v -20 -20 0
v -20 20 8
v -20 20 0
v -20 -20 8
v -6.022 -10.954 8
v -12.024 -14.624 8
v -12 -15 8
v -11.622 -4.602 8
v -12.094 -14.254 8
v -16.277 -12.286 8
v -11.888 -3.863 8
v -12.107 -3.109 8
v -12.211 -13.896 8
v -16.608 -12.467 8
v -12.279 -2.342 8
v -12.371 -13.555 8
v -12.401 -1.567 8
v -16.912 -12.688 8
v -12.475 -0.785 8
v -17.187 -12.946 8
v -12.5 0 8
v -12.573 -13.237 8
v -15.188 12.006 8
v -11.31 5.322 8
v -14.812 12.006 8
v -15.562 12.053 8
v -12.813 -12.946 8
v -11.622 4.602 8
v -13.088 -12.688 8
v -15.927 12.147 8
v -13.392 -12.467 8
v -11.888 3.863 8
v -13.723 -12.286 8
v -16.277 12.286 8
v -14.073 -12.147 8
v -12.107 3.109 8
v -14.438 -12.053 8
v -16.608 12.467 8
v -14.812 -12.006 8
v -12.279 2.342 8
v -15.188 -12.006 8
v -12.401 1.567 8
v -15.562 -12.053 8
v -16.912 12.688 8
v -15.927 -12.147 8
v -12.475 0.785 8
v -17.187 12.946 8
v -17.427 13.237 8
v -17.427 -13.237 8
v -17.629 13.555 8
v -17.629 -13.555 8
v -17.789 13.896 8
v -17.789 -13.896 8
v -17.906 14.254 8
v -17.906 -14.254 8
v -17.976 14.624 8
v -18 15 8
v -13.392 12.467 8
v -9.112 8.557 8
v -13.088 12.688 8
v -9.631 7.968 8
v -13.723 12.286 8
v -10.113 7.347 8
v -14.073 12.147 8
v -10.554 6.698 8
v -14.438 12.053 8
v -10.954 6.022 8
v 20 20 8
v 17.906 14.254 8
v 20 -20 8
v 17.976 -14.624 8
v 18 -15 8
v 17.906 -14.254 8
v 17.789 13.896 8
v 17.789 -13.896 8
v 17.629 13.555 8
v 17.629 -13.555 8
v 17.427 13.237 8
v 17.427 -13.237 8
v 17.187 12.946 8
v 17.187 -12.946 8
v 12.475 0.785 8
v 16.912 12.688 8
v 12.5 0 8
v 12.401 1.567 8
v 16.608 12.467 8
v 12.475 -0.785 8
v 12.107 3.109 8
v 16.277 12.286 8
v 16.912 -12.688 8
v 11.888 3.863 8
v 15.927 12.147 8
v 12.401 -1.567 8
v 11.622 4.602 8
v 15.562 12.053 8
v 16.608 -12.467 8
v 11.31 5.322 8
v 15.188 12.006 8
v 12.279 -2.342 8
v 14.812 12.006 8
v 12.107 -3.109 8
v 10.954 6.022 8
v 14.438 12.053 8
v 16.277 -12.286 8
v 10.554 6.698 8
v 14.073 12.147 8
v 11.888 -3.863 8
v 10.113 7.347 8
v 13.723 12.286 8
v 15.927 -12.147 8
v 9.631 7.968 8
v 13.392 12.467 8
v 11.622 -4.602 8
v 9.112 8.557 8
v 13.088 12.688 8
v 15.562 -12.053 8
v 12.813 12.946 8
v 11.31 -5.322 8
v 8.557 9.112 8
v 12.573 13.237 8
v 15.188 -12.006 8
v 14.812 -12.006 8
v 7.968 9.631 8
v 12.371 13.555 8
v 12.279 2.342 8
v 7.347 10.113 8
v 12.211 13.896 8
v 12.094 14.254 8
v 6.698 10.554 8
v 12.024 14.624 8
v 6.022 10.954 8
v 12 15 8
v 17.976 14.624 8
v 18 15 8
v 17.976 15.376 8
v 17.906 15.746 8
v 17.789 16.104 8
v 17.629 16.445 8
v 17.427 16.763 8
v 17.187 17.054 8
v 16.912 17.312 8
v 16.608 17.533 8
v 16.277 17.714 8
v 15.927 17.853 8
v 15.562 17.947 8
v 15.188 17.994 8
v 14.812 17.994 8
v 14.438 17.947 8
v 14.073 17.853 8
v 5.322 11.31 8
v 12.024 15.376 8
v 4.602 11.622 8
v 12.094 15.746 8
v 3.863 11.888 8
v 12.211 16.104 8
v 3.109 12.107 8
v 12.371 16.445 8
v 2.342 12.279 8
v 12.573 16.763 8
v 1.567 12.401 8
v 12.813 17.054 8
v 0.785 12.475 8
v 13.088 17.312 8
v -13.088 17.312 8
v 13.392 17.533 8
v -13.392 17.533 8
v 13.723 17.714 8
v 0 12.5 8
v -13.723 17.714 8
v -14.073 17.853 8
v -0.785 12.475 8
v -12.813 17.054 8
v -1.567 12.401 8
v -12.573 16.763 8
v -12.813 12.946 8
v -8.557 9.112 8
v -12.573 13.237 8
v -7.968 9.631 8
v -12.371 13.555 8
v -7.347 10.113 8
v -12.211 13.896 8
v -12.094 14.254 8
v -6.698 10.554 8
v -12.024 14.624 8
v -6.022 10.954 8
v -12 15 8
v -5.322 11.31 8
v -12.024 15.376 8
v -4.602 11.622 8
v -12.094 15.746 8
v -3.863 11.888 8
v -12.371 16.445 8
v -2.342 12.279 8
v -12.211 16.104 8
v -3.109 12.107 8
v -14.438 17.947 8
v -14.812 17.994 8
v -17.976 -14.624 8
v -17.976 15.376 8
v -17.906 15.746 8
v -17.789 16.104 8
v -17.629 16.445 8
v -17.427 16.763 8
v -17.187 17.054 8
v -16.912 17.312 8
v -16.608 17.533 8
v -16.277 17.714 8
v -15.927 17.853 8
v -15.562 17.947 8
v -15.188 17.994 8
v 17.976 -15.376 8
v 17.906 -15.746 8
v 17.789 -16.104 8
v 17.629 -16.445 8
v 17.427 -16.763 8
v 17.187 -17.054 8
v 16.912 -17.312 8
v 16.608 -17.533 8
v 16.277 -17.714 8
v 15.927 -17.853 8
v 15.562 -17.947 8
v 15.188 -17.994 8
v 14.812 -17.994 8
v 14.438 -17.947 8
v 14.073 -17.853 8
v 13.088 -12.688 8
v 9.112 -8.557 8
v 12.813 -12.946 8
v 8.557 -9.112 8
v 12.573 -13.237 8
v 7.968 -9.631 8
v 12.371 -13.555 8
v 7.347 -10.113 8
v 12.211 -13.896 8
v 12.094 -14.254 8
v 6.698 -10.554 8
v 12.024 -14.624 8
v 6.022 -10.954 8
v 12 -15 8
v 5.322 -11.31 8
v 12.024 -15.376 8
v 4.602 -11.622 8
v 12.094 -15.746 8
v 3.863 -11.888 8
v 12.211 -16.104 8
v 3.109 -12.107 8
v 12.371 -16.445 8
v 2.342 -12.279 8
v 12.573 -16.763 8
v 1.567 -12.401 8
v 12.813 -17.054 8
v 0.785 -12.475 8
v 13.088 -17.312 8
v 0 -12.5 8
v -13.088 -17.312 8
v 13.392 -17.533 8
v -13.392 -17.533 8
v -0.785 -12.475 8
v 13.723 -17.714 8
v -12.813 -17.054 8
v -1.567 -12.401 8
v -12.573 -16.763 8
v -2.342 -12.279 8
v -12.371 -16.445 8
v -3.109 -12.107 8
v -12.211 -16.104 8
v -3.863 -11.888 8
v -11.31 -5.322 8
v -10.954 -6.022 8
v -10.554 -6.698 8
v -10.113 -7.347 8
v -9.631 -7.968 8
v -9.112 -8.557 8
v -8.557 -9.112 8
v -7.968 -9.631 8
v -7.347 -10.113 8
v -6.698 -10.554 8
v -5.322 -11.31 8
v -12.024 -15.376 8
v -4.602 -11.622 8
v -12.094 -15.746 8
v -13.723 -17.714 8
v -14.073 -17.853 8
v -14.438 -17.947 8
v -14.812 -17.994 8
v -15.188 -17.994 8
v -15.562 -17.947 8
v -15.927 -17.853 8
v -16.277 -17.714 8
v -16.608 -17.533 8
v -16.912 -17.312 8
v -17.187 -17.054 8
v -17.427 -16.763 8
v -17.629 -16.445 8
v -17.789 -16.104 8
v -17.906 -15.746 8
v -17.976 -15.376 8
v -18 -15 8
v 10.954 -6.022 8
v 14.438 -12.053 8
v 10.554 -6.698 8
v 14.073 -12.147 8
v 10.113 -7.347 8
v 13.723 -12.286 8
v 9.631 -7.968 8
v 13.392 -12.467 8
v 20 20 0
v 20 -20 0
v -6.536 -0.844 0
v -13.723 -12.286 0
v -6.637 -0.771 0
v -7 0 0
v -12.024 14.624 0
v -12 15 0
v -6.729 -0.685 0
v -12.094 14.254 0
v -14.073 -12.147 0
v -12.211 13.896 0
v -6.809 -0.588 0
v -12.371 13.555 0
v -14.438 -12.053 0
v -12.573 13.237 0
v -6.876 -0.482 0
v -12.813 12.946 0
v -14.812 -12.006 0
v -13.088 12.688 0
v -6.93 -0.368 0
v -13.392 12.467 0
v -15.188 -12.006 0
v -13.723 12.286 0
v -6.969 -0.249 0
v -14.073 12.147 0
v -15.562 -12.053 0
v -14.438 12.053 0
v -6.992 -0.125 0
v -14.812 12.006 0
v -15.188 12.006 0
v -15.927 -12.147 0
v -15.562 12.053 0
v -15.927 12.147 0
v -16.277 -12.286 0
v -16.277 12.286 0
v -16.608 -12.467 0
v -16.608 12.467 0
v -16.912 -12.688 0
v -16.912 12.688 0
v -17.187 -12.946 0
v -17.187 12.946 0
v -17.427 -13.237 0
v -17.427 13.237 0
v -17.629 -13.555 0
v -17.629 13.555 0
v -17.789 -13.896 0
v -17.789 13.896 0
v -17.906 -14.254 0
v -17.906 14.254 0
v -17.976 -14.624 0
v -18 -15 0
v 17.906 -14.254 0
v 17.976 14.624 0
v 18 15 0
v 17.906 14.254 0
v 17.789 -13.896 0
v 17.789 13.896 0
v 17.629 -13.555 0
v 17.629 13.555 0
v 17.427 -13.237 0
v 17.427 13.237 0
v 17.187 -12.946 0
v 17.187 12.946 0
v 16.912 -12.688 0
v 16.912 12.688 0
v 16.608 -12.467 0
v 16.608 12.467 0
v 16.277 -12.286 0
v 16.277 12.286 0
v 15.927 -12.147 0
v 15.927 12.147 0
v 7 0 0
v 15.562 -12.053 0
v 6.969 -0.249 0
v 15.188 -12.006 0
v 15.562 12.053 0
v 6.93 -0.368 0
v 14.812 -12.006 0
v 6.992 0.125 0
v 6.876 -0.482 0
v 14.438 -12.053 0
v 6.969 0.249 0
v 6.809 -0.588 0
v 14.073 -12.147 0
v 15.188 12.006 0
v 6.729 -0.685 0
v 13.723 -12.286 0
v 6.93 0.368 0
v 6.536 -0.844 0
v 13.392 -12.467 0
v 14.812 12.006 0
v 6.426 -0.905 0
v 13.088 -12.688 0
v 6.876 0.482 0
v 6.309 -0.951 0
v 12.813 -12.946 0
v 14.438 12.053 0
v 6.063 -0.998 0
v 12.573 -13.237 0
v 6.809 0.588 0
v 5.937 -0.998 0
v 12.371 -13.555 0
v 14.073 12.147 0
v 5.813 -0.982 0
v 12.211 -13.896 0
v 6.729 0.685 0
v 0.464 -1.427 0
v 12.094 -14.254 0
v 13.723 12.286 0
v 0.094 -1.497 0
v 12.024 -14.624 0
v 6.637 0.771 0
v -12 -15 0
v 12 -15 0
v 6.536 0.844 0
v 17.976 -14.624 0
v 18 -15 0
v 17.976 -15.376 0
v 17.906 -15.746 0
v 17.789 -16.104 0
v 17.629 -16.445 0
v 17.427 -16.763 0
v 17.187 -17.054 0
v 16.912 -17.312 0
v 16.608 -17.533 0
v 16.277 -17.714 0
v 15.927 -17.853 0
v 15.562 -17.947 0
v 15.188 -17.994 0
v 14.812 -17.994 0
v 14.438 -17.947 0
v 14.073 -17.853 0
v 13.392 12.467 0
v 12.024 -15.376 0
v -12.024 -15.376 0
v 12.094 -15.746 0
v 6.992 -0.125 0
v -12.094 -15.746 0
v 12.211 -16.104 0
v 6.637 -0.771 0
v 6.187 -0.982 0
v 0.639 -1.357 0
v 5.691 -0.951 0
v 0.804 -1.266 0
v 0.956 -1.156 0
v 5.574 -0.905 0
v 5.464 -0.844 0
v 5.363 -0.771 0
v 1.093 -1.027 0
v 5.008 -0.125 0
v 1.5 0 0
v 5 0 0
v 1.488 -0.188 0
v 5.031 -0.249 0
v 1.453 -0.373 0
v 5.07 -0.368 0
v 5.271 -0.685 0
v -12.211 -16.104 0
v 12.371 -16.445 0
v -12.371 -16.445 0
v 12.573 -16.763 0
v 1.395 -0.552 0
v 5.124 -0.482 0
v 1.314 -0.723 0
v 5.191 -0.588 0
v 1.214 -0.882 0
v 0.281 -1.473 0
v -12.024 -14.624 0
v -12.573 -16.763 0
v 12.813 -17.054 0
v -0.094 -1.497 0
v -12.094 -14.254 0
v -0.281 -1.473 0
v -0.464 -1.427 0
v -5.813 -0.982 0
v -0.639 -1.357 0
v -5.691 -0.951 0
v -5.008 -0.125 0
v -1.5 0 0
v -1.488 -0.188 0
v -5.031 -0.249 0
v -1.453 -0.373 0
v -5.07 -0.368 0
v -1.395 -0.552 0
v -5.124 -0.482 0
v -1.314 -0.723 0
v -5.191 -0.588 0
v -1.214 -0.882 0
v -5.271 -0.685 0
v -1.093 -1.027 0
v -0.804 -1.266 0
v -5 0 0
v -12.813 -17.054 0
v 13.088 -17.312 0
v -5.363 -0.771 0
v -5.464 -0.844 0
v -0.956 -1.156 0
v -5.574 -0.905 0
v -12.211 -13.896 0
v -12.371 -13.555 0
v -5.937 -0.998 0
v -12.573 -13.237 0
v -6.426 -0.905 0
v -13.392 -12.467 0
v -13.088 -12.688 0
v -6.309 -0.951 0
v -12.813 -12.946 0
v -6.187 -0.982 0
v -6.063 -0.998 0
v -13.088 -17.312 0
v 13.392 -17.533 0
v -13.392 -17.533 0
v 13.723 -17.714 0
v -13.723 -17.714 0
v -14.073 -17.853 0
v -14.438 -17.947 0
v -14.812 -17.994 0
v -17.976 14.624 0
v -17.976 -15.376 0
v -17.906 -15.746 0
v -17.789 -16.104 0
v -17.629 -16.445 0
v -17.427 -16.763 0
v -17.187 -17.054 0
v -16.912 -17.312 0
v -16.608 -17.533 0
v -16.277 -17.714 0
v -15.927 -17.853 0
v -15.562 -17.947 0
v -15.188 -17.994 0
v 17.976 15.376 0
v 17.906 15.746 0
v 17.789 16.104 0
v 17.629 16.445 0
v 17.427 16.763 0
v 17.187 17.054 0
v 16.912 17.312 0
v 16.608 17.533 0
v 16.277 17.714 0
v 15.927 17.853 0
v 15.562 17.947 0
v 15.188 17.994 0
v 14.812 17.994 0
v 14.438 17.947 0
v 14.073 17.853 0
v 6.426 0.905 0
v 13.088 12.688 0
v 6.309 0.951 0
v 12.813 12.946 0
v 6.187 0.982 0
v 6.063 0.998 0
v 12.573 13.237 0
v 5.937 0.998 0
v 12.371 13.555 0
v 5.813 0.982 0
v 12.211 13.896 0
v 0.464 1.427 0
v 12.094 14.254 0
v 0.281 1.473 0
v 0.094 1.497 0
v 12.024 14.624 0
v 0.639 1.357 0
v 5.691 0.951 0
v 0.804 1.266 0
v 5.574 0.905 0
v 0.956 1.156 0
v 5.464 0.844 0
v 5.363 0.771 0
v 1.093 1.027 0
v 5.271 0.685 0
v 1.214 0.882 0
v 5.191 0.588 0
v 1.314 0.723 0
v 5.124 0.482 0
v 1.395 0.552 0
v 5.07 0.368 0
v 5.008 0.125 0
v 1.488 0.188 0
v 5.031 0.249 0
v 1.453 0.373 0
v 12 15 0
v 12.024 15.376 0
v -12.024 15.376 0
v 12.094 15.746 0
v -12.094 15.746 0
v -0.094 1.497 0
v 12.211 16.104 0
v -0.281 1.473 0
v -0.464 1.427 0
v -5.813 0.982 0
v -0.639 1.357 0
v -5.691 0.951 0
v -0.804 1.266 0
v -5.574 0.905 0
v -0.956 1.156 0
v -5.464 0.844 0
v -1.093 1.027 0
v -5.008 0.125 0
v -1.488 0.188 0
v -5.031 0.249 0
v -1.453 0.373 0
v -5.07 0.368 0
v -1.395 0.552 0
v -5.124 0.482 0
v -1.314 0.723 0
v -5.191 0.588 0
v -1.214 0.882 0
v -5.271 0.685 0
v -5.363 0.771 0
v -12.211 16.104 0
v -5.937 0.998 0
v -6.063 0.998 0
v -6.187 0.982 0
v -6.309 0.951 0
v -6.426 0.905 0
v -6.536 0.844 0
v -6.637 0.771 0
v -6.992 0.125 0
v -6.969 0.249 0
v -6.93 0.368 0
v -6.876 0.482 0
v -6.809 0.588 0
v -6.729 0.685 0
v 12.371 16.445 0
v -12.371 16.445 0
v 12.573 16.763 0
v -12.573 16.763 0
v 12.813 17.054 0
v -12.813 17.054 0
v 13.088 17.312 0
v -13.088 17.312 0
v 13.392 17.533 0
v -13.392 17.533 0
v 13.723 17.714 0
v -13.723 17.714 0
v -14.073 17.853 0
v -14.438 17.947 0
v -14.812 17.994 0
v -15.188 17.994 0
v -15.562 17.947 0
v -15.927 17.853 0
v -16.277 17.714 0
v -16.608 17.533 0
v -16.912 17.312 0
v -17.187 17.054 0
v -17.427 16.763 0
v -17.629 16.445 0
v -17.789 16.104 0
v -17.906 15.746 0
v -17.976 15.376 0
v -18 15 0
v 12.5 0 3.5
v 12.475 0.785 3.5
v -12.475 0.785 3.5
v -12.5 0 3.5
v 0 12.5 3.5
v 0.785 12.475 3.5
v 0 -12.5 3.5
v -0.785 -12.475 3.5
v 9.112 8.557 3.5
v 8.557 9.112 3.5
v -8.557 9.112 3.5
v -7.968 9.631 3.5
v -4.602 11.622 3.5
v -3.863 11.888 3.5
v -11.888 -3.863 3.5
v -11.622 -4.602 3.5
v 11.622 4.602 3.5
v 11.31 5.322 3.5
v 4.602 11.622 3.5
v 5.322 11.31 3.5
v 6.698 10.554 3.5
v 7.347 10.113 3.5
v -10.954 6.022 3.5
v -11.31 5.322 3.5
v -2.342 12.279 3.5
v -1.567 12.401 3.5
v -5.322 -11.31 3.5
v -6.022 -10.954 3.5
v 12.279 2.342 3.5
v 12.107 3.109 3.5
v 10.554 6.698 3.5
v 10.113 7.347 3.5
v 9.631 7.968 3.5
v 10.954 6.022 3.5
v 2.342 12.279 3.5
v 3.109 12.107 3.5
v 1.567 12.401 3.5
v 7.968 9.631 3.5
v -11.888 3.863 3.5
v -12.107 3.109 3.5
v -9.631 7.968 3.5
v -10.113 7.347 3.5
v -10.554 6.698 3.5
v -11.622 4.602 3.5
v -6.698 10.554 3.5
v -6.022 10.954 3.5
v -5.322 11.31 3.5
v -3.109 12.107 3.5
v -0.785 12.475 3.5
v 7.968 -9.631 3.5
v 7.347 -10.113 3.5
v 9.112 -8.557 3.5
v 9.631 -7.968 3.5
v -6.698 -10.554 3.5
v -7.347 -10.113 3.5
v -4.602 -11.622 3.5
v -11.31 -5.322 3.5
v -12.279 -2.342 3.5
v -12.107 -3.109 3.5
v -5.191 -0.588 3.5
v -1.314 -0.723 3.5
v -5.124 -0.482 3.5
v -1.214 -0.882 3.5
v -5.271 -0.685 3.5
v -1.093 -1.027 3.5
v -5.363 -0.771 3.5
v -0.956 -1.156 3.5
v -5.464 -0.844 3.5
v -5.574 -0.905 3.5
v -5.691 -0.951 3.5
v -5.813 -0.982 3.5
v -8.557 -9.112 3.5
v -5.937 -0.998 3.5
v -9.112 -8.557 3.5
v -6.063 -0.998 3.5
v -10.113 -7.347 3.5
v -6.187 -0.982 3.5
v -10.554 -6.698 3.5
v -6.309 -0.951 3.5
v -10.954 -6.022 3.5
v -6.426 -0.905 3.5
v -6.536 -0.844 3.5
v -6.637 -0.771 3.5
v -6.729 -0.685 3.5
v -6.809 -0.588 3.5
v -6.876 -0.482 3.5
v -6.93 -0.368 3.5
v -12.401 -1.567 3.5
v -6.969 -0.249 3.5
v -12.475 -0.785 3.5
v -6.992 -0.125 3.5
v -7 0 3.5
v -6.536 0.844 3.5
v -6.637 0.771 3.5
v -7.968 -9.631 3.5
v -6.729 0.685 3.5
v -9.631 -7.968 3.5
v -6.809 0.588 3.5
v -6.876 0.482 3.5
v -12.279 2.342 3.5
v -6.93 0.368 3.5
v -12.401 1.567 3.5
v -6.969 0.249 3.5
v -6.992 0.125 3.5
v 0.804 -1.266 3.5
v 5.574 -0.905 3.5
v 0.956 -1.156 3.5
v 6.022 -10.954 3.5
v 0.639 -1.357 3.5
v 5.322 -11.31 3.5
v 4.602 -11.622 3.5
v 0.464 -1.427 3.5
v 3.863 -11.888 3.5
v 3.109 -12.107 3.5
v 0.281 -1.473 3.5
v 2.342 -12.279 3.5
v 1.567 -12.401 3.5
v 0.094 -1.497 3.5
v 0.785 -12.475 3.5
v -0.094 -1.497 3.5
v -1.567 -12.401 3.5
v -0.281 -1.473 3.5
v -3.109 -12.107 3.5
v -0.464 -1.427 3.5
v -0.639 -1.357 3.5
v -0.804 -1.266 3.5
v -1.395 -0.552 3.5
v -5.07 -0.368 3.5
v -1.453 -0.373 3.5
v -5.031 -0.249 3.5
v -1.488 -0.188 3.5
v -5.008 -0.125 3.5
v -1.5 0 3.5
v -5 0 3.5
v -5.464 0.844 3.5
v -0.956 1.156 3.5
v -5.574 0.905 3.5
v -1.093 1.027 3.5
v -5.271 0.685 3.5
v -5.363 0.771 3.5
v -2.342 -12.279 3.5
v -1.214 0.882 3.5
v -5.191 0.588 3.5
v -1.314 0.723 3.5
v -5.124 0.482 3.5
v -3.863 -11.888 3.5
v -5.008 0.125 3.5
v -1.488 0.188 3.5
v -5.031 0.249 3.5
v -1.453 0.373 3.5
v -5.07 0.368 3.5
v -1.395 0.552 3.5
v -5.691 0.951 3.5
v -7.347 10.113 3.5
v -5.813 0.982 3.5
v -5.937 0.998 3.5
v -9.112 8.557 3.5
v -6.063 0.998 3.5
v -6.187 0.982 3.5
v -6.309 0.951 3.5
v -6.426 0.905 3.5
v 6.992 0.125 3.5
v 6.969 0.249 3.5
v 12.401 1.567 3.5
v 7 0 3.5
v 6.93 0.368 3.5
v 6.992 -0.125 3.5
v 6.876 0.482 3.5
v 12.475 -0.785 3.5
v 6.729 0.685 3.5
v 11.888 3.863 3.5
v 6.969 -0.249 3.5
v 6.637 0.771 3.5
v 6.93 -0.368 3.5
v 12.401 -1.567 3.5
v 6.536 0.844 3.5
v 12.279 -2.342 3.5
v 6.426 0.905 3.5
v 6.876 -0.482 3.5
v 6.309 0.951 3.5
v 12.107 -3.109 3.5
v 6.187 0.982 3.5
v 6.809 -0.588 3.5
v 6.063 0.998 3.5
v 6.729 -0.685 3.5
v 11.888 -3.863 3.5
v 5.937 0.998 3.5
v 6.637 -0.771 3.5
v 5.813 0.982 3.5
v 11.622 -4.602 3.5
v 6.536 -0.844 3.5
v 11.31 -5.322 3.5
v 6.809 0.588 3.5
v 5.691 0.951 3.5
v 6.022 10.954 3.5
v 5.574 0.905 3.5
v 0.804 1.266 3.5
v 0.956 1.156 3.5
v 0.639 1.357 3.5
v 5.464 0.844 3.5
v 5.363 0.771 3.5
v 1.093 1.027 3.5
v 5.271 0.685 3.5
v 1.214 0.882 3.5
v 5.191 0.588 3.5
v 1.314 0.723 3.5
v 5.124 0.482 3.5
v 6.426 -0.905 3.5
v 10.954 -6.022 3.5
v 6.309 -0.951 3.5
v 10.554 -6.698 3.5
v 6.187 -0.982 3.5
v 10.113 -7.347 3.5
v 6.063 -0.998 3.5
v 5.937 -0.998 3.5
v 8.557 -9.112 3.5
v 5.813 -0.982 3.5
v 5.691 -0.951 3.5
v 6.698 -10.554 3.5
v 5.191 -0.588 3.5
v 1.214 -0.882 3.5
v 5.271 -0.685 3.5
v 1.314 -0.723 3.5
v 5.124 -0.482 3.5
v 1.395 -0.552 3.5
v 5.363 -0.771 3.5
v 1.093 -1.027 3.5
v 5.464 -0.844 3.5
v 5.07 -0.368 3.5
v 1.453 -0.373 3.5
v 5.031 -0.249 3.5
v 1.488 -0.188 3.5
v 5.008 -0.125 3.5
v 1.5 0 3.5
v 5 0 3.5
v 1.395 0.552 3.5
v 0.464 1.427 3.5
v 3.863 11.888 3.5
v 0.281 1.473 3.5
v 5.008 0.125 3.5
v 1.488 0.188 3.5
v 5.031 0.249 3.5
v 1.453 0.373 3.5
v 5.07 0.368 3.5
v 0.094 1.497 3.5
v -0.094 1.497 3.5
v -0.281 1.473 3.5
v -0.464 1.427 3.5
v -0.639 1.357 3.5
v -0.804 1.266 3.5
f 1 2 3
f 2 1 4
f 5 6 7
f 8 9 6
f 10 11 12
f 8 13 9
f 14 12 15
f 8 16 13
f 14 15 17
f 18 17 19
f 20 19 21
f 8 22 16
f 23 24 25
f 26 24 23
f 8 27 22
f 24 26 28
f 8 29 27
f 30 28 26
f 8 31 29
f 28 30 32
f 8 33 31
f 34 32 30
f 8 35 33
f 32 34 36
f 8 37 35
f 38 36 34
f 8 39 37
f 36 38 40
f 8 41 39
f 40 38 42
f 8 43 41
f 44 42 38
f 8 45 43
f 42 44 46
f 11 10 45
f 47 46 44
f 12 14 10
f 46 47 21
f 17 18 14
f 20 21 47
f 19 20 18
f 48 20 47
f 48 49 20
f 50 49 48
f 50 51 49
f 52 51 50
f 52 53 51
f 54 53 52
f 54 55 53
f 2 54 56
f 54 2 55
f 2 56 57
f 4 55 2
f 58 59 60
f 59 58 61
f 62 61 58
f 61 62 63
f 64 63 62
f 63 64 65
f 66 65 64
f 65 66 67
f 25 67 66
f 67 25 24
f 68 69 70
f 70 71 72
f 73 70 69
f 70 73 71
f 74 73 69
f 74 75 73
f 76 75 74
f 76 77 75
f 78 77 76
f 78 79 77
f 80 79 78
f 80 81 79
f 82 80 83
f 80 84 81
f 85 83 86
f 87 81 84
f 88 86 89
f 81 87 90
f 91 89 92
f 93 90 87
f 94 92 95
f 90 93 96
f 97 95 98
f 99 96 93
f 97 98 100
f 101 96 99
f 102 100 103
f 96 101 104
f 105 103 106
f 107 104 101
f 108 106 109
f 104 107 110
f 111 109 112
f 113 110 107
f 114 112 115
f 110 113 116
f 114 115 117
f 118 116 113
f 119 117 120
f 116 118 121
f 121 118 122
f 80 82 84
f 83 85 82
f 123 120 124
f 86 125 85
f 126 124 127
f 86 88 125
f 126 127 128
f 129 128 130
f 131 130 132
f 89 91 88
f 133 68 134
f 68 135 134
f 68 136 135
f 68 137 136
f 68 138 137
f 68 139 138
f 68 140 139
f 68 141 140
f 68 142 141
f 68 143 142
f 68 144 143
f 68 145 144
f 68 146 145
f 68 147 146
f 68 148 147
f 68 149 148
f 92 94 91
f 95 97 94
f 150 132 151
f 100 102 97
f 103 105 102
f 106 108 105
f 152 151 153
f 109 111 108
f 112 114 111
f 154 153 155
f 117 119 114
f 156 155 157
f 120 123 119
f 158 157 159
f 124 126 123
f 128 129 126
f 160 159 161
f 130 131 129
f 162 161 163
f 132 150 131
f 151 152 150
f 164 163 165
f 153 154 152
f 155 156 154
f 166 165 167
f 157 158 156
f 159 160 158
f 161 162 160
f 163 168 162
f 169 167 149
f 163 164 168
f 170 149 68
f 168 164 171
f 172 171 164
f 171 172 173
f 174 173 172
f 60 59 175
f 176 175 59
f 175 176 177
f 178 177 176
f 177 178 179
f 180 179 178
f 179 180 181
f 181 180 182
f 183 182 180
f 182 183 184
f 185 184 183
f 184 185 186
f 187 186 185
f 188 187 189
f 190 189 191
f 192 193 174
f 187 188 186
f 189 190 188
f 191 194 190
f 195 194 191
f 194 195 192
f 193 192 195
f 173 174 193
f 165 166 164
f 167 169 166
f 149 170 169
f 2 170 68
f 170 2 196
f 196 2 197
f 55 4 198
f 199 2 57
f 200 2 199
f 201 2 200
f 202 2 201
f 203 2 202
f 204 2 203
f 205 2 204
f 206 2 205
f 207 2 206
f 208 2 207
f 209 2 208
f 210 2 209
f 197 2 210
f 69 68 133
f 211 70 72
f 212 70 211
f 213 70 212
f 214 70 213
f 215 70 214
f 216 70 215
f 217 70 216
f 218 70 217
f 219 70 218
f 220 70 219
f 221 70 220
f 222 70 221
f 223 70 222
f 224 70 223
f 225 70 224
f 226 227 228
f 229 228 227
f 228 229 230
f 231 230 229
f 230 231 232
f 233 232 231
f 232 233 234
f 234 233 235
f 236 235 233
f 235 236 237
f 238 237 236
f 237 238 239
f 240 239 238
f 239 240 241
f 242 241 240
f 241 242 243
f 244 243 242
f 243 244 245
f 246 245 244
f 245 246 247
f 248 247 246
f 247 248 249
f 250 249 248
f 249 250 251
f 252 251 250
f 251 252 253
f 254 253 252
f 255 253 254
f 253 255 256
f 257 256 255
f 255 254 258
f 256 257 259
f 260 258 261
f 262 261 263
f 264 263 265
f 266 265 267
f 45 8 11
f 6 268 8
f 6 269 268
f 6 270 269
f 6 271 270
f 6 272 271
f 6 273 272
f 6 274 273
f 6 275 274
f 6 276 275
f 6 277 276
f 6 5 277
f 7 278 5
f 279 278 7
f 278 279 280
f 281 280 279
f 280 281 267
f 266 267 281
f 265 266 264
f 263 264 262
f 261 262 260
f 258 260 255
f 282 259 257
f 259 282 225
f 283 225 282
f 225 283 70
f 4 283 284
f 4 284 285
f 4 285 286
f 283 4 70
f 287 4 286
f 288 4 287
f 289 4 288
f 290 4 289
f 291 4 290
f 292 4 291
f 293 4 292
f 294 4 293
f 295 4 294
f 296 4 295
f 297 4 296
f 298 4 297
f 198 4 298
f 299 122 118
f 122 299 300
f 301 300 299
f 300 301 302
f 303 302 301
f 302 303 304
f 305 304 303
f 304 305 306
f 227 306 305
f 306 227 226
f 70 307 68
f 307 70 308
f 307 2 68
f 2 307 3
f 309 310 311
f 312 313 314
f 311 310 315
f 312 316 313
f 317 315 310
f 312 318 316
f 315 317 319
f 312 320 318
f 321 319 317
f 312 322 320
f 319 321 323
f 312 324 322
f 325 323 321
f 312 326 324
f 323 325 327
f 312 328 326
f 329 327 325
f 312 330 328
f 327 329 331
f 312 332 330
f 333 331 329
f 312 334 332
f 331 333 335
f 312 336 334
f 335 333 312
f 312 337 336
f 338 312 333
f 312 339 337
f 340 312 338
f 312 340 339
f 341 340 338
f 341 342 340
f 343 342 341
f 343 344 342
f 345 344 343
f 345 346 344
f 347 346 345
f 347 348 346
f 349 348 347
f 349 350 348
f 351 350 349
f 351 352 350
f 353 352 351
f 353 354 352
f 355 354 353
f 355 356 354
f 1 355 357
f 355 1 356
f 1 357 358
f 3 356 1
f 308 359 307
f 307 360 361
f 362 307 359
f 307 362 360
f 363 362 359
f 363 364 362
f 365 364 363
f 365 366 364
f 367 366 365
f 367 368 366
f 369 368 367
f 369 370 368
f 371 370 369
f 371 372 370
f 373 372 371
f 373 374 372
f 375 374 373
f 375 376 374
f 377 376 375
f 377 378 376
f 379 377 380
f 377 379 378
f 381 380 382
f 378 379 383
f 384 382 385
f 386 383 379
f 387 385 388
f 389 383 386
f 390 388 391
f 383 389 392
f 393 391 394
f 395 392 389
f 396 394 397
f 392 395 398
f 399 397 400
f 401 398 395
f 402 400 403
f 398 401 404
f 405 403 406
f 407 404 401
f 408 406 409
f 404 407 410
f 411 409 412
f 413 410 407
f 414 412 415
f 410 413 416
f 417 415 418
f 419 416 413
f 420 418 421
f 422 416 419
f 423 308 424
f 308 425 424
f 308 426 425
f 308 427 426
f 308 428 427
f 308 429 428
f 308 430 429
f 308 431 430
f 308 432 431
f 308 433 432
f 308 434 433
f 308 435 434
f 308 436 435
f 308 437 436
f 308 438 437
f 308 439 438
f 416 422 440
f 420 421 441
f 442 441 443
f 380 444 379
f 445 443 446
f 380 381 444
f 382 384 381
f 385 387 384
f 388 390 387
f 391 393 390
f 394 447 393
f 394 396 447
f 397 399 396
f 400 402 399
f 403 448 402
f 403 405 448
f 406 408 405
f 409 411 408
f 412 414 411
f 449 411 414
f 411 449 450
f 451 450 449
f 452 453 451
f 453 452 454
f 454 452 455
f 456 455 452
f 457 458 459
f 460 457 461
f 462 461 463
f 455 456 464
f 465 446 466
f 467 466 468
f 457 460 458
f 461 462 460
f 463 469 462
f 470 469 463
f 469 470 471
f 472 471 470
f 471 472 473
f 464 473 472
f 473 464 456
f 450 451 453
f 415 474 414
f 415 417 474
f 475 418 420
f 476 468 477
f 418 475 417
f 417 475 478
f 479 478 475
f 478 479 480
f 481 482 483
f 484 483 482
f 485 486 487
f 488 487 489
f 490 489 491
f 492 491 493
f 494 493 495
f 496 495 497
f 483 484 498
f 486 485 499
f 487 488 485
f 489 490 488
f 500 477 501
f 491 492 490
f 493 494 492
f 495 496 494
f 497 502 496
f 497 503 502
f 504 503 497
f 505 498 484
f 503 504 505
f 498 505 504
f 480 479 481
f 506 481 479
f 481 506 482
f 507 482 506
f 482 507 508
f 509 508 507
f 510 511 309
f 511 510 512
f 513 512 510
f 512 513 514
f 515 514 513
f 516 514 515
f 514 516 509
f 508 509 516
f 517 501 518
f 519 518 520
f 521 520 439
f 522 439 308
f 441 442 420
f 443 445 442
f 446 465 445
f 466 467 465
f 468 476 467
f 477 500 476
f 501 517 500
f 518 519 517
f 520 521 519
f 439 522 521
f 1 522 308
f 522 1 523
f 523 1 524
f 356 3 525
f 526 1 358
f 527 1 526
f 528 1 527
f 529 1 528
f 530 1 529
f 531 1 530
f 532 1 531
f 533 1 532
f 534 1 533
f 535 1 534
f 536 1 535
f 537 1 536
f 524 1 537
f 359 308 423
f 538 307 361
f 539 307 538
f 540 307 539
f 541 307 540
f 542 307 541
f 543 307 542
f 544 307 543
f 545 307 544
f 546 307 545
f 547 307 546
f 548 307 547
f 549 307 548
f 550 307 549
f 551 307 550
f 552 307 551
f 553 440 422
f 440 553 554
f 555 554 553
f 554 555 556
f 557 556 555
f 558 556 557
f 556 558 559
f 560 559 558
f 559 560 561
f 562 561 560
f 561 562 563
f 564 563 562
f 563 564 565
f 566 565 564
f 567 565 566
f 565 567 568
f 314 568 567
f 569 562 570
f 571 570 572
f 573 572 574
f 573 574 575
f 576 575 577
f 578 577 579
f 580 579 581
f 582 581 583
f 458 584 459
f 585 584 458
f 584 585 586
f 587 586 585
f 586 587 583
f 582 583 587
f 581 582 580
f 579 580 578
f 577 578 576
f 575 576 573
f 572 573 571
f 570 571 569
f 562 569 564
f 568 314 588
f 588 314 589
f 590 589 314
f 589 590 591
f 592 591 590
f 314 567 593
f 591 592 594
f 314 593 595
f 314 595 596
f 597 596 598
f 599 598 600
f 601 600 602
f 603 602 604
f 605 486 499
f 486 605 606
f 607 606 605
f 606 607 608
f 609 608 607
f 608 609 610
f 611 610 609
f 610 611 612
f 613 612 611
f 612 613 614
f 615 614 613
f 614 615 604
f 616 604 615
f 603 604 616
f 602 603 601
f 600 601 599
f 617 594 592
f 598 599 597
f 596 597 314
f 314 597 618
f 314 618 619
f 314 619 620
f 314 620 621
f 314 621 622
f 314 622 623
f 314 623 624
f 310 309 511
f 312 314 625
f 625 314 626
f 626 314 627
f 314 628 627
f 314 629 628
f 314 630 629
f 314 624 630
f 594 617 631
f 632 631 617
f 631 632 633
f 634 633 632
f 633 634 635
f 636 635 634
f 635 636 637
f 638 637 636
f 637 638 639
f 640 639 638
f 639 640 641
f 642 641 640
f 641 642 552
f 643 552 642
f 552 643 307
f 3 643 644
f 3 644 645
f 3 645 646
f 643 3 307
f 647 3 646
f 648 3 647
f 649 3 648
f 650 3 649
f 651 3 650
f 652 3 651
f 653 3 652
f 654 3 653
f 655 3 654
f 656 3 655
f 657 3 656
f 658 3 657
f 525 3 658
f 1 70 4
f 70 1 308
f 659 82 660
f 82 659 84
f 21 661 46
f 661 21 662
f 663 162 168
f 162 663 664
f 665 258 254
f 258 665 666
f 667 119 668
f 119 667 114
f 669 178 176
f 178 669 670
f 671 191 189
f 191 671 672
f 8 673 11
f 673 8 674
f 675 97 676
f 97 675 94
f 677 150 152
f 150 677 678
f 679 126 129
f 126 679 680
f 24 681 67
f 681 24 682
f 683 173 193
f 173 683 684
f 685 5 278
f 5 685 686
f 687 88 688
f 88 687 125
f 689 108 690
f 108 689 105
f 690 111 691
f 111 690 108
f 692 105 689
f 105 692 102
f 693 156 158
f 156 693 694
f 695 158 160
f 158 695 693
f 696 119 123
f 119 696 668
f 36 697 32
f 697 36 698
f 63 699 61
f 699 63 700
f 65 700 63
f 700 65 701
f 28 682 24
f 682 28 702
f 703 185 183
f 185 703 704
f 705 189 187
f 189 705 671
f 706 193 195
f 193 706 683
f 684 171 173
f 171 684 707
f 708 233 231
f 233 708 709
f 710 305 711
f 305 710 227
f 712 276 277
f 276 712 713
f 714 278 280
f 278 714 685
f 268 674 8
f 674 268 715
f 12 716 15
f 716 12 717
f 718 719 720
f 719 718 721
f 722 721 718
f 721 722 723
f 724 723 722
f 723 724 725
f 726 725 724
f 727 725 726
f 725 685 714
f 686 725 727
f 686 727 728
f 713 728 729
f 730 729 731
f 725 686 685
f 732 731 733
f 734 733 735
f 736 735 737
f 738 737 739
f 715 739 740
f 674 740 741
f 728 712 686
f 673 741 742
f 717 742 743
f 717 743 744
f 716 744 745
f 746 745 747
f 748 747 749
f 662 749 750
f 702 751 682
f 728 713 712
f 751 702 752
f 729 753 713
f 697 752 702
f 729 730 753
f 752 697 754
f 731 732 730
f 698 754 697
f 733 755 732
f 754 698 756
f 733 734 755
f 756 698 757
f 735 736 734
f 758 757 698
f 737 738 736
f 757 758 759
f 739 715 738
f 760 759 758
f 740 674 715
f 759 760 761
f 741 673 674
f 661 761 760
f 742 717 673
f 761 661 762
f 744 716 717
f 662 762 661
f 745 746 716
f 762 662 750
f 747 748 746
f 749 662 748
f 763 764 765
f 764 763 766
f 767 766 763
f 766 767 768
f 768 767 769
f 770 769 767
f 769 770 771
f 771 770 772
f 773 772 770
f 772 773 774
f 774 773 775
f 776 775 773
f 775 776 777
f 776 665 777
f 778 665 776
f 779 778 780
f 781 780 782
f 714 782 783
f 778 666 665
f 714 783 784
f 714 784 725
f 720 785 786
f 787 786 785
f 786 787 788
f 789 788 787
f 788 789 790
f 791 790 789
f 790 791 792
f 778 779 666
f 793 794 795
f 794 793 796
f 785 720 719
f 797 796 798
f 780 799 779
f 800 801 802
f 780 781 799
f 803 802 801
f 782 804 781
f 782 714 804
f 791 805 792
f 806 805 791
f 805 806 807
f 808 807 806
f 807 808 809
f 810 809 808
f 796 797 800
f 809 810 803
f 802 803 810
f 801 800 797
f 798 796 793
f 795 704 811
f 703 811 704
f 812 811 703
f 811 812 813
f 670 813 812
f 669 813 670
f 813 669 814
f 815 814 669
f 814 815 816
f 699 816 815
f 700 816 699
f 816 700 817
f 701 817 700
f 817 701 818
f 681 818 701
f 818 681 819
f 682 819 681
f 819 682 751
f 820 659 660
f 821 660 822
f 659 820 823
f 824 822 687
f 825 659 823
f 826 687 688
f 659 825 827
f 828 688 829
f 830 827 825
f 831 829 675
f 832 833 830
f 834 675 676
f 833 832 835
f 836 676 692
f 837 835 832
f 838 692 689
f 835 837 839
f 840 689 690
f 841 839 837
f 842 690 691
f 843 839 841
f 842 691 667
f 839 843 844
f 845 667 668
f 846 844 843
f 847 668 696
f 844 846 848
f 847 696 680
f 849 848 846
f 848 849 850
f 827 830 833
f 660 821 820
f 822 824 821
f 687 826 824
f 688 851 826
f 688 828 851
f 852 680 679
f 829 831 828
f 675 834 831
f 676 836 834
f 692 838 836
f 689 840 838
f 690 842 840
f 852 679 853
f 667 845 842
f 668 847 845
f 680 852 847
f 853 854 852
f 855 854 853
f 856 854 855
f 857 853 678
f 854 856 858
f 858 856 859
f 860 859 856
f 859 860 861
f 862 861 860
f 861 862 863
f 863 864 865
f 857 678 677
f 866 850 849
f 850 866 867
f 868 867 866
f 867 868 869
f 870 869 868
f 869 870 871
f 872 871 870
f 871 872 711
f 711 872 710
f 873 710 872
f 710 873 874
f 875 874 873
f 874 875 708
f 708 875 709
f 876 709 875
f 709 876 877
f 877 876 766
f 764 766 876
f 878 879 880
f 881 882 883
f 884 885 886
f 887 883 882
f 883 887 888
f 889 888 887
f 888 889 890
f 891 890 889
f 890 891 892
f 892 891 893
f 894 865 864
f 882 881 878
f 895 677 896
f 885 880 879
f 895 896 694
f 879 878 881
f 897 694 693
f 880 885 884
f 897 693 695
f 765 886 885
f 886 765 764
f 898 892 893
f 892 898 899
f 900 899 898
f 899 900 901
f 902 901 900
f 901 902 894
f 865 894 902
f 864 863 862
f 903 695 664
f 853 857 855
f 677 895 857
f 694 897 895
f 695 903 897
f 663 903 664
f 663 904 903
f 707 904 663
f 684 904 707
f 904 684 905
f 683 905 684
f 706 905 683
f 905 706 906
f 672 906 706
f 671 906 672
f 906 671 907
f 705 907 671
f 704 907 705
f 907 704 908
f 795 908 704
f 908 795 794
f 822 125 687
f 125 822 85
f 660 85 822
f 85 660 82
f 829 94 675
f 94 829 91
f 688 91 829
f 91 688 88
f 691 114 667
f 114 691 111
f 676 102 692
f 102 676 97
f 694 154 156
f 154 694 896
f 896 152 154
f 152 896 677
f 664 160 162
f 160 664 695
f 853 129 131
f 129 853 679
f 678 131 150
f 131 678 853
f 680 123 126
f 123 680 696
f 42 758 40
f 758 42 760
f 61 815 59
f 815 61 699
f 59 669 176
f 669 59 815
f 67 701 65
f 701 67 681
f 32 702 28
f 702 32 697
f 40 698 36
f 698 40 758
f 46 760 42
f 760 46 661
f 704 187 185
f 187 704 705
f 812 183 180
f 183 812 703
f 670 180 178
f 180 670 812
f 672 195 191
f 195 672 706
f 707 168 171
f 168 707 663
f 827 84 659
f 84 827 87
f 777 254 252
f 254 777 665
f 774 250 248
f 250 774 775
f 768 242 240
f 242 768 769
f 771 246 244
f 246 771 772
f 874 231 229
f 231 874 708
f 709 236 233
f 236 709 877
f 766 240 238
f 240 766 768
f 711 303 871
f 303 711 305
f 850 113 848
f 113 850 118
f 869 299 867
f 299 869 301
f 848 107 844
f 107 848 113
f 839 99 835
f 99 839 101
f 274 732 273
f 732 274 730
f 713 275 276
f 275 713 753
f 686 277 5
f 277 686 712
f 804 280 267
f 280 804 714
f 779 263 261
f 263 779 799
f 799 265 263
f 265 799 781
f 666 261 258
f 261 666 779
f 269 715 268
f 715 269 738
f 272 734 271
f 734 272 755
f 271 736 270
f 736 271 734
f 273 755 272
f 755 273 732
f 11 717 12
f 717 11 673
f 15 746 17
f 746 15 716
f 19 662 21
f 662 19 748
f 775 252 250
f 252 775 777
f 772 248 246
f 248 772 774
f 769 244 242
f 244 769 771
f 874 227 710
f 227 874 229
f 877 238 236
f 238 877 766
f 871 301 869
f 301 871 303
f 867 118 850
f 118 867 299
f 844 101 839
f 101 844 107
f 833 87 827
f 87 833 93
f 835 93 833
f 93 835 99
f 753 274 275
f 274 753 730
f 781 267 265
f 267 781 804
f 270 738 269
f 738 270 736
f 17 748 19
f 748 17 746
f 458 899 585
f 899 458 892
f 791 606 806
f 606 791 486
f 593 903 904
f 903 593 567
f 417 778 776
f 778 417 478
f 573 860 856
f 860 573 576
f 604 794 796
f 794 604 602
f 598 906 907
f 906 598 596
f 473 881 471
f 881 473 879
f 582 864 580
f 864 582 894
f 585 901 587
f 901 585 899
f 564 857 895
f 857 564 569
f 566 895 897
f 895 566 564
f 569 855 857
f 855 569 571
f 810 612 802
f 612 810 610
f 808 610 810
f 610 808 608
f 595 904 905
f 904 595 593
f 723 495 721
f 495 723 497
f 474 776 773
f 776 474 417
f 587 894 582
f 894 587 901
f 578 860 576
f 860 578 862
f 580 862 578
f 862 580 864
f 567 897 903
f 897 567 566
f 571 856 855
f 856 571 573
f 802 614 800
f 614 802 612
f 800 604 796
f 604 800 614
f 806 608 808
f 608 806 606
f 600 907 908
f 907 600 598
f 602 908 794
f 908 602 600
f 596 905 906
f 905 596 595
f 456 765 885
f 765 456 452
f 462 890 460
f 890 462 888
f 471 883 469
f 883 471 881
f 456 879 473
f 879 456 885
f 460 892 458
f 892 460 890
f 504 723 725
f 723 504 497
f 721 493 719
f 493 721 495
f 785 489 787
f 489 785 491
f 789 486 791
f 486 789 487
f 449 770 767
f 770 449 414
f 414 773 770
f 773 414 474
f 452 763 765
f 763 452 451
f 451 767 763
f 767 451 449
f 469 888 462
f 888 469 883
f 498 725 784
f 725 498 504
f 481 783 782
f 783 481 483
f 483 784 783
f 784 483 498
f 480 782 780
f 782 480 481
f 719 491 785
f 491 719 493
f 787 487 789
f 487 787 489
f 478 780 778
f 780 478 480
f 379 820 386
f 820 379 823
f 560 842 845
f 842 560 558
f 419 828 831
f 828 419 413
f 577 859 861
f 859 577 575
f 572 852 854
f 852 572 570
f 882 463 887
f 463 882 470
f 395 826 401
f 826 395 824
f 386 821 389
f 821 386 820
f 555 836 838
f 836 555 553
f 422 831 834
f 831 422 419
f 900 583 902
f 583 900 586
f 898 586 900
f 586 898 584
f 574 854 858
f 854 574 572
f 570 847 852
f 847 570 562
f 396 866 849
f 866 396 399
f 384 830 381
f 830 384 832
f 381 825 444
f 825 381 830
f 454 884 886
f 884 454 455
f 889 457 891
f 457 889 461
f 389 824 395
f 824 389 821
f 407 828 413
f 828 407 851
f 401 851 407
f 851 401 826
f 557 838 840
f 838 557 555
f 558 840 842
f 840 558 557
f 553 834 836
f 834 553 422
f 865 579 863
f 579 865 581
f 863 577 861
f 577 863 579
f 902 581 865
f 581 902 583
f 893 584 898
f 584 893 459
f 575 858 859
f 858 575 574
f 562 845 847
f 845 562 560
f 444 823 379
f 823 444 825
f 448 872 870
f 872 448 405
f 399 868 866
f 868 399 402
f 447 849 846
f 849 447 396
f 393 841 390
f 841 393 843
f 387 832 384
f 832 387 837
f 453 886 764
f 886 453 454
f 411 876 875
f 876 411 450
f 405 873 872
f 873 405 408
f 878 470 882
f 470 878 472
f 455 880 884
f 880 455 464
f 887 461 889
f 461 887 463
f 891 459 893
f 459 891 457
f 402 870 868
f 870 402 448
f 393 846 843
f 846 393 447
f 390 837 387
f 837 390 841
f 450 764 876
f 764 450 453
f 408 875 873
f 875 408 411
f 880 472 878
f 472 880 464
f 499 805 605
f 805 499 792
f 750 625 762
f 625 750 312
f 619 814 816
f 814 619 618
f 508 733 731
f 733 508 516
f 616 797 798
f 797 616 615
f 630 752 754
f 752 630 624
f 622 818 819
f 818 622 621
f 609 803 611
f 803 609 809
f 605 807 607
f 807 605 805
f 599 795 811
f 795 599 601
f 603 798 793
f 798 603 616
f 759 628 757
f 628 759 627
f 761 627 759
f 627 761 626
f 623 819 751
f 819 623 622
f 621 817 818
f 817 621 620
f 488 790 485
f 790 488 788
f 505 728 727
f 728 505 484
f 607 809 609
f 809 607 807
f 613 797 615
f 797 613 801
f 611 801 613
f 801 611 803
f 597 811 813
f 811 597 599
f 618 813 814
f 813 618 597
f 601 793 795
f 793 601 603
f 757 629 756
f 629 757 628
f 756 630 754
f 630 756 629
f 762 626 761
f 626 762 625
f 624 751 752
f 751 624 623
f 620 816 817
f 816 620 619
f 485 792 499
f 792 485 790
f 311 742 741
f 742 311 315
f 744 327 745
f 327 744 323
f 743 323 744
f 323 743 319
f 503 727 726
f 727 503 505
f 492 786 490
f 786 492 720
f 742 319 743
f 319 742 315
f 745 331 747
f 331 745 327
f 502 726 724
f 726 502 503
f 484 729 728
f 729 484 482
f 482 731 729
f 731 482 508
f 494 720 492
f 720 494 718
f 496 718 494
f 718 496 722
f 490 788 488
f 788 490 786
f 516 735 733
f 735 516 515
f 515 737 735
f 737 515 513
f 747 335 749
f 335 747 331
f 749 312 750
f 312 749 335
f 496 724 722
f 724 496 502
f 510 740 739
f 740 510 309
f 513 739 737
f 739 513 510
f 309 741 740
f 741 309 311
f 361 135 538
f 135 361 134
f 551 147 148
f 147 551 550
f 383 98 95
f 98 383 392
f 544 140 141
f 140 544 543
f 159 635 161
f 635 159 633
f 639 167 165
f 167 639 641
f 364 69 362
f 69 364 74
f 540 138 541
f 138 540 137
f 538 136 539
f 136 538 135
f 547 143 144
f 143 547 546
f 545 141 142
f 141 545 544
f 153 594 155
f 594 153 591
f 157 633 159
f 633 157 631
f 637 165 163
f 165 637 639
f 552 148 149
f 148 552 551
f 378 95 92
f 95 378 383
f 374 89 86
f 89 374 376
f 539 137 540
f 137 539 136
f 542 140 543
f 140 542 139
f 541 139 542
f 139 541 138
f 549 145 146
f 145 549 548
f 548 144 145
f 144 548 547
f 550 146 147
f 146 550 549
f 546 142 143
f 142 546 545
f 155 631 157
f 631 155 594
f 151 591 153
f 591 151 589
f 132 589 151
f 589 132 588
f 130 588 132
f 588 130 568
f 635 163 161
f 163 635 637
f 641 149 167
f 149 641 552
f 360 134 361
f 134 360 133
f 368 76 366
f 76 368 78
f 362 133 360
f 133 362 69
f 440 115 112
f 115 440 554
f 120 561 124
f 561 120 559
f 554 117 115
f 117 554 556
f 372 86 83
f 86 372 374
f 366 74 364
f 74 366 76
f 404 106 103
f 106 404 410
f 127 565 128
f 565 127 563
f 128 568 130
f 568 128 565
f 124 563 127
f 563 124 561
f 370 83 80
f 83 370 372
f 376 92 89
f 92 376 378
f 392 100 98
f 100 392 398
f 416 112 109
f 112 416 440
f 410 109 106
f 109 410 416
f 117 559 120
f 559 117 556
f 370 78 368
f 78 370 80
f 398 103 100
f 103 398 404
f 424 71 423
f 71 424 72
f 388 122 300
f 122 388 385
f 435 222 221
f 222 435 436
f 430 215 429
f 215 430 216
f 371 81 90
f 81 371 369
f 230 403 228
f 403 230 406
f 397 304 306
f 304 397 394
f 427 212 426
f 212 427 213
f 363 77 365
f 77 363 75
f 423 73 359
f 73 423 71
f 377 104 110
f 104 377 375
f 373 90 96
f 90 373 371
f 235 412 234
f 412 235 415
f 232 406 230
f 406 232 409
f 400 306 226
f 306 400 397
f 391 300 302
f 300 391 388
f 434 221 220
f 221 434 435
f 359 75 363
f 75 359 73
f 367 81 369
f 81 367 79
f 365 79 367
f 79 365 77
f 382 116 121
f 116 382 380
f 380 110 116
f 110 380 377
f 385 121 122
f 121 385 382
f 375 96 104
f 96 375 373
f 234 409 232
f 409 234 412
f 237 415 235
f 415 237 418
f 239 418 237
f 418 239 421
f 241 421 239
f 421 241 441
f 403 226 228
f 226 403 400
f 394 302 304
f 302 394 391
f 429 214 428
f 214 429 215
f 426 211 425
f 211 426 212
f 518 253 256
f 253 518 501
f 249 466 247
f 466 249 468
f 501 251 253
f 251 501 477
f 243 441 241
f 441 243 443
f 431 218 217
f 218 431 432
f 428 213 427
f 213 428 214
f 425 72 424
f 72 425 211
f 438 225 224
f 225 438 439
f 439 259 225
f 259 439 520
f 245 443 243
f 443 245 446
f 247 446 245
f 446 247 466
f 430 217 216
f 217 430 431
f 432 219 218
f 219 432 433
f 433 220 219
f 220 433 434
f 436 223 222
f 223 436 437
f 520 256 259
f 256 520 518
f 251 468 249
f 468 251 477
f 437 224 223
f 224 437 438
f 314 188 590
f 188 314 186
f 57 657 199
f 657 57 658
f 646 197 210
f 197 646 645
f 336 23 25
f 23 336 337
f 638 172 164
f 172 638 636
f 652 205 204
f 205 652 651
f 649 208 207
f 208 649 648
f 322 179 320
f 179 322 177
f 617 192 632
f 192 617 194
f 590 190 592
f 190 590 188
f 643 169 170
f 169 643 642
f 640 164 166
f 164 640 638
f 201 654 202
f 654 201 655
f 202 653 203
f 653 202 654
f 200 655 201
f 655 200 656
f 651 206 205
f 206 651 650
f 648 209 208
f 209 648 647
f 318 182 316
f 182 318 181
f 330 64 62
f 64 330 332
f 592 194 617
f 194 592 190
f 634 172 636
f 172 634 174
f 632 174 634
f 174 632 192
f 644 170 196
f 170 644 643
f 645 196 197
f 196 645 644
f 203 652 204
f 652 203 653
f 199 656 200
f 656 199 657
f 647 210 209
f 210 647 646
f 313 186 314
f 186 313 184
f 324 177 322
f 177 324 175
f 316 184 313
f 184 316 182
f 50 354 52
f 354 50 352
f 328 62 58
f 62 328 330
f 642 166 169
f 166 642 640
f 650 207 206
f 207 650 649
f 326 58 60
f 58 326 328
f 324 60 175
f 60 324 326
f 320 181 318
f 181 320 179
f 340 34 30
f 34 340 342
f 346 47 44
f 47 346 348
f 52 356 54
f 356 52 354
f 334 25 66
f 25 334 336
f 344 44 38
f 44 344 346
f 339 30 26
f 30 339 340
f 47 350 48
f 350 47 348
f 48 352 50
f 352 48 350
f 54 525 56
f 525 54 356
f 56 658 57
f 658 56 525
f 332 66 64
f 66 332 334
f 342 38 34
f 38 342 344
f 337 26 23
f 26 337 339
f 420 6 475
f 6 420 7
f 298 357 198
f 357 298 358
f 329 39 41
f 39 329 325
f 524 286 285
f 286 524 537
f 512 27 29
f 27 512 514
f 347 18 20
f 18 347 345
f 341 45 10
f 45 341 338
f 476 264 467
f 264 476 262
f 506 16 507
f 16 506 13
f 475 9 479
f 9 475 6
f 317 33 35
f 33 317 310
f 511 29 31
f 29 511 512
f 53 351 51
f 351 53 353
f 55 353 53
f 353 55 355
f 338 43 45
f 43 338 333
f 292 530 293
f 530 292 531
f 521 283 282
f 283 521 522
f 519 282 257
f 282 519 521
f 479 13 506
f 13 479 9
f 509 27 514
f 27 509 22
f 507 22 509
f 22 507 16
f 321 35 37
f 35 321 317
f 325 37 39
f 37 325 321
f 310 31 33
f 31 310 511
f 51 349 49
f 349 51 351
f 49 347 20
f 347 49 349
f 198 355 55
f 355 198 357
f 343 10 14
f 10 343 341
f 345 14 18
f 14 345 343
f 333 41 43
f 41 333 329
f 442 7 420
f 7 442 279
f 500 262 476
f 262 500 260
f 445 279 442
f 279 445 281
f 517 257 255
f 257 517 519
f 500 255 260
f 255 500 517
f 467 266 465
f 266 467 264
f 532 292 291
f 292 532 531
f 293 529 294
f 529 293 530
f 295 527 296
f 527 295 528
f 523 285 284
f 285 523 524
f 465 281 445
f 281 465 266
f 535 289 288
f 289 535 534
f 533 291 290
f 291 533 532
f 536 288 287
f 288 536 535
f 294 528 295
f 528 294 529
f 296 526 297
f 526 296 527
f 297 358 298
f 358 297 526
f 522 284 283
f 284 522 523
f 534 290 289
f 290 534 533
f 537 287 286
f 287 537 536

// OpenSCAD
difference(){
translate([0,0,4])cube([40,40,8], center=true);
    translate([0,0,8-4.5])cylinder (d=25, h=4.5, $fn=100);
    
    cylinder (d=3,h=10, $fn=50);
    
    translate([6,0,0])cylinder (d=2,h=10, $fn=50);
    translate([-6,0,0])cylinder (d=2,h=10, $fn=50);
    
    translate([15,15,0])cylinder (d=6,h=10, $fn=50);
    translate([15,-15,0])cylinder (d=6,h=10, $fn=50);
    translate([-15,15,0])cylinder (d=6,h=10, $fn=50);
    translate([-15,-15,0])cylinder (d=6,h=10, $fn=50);
}
